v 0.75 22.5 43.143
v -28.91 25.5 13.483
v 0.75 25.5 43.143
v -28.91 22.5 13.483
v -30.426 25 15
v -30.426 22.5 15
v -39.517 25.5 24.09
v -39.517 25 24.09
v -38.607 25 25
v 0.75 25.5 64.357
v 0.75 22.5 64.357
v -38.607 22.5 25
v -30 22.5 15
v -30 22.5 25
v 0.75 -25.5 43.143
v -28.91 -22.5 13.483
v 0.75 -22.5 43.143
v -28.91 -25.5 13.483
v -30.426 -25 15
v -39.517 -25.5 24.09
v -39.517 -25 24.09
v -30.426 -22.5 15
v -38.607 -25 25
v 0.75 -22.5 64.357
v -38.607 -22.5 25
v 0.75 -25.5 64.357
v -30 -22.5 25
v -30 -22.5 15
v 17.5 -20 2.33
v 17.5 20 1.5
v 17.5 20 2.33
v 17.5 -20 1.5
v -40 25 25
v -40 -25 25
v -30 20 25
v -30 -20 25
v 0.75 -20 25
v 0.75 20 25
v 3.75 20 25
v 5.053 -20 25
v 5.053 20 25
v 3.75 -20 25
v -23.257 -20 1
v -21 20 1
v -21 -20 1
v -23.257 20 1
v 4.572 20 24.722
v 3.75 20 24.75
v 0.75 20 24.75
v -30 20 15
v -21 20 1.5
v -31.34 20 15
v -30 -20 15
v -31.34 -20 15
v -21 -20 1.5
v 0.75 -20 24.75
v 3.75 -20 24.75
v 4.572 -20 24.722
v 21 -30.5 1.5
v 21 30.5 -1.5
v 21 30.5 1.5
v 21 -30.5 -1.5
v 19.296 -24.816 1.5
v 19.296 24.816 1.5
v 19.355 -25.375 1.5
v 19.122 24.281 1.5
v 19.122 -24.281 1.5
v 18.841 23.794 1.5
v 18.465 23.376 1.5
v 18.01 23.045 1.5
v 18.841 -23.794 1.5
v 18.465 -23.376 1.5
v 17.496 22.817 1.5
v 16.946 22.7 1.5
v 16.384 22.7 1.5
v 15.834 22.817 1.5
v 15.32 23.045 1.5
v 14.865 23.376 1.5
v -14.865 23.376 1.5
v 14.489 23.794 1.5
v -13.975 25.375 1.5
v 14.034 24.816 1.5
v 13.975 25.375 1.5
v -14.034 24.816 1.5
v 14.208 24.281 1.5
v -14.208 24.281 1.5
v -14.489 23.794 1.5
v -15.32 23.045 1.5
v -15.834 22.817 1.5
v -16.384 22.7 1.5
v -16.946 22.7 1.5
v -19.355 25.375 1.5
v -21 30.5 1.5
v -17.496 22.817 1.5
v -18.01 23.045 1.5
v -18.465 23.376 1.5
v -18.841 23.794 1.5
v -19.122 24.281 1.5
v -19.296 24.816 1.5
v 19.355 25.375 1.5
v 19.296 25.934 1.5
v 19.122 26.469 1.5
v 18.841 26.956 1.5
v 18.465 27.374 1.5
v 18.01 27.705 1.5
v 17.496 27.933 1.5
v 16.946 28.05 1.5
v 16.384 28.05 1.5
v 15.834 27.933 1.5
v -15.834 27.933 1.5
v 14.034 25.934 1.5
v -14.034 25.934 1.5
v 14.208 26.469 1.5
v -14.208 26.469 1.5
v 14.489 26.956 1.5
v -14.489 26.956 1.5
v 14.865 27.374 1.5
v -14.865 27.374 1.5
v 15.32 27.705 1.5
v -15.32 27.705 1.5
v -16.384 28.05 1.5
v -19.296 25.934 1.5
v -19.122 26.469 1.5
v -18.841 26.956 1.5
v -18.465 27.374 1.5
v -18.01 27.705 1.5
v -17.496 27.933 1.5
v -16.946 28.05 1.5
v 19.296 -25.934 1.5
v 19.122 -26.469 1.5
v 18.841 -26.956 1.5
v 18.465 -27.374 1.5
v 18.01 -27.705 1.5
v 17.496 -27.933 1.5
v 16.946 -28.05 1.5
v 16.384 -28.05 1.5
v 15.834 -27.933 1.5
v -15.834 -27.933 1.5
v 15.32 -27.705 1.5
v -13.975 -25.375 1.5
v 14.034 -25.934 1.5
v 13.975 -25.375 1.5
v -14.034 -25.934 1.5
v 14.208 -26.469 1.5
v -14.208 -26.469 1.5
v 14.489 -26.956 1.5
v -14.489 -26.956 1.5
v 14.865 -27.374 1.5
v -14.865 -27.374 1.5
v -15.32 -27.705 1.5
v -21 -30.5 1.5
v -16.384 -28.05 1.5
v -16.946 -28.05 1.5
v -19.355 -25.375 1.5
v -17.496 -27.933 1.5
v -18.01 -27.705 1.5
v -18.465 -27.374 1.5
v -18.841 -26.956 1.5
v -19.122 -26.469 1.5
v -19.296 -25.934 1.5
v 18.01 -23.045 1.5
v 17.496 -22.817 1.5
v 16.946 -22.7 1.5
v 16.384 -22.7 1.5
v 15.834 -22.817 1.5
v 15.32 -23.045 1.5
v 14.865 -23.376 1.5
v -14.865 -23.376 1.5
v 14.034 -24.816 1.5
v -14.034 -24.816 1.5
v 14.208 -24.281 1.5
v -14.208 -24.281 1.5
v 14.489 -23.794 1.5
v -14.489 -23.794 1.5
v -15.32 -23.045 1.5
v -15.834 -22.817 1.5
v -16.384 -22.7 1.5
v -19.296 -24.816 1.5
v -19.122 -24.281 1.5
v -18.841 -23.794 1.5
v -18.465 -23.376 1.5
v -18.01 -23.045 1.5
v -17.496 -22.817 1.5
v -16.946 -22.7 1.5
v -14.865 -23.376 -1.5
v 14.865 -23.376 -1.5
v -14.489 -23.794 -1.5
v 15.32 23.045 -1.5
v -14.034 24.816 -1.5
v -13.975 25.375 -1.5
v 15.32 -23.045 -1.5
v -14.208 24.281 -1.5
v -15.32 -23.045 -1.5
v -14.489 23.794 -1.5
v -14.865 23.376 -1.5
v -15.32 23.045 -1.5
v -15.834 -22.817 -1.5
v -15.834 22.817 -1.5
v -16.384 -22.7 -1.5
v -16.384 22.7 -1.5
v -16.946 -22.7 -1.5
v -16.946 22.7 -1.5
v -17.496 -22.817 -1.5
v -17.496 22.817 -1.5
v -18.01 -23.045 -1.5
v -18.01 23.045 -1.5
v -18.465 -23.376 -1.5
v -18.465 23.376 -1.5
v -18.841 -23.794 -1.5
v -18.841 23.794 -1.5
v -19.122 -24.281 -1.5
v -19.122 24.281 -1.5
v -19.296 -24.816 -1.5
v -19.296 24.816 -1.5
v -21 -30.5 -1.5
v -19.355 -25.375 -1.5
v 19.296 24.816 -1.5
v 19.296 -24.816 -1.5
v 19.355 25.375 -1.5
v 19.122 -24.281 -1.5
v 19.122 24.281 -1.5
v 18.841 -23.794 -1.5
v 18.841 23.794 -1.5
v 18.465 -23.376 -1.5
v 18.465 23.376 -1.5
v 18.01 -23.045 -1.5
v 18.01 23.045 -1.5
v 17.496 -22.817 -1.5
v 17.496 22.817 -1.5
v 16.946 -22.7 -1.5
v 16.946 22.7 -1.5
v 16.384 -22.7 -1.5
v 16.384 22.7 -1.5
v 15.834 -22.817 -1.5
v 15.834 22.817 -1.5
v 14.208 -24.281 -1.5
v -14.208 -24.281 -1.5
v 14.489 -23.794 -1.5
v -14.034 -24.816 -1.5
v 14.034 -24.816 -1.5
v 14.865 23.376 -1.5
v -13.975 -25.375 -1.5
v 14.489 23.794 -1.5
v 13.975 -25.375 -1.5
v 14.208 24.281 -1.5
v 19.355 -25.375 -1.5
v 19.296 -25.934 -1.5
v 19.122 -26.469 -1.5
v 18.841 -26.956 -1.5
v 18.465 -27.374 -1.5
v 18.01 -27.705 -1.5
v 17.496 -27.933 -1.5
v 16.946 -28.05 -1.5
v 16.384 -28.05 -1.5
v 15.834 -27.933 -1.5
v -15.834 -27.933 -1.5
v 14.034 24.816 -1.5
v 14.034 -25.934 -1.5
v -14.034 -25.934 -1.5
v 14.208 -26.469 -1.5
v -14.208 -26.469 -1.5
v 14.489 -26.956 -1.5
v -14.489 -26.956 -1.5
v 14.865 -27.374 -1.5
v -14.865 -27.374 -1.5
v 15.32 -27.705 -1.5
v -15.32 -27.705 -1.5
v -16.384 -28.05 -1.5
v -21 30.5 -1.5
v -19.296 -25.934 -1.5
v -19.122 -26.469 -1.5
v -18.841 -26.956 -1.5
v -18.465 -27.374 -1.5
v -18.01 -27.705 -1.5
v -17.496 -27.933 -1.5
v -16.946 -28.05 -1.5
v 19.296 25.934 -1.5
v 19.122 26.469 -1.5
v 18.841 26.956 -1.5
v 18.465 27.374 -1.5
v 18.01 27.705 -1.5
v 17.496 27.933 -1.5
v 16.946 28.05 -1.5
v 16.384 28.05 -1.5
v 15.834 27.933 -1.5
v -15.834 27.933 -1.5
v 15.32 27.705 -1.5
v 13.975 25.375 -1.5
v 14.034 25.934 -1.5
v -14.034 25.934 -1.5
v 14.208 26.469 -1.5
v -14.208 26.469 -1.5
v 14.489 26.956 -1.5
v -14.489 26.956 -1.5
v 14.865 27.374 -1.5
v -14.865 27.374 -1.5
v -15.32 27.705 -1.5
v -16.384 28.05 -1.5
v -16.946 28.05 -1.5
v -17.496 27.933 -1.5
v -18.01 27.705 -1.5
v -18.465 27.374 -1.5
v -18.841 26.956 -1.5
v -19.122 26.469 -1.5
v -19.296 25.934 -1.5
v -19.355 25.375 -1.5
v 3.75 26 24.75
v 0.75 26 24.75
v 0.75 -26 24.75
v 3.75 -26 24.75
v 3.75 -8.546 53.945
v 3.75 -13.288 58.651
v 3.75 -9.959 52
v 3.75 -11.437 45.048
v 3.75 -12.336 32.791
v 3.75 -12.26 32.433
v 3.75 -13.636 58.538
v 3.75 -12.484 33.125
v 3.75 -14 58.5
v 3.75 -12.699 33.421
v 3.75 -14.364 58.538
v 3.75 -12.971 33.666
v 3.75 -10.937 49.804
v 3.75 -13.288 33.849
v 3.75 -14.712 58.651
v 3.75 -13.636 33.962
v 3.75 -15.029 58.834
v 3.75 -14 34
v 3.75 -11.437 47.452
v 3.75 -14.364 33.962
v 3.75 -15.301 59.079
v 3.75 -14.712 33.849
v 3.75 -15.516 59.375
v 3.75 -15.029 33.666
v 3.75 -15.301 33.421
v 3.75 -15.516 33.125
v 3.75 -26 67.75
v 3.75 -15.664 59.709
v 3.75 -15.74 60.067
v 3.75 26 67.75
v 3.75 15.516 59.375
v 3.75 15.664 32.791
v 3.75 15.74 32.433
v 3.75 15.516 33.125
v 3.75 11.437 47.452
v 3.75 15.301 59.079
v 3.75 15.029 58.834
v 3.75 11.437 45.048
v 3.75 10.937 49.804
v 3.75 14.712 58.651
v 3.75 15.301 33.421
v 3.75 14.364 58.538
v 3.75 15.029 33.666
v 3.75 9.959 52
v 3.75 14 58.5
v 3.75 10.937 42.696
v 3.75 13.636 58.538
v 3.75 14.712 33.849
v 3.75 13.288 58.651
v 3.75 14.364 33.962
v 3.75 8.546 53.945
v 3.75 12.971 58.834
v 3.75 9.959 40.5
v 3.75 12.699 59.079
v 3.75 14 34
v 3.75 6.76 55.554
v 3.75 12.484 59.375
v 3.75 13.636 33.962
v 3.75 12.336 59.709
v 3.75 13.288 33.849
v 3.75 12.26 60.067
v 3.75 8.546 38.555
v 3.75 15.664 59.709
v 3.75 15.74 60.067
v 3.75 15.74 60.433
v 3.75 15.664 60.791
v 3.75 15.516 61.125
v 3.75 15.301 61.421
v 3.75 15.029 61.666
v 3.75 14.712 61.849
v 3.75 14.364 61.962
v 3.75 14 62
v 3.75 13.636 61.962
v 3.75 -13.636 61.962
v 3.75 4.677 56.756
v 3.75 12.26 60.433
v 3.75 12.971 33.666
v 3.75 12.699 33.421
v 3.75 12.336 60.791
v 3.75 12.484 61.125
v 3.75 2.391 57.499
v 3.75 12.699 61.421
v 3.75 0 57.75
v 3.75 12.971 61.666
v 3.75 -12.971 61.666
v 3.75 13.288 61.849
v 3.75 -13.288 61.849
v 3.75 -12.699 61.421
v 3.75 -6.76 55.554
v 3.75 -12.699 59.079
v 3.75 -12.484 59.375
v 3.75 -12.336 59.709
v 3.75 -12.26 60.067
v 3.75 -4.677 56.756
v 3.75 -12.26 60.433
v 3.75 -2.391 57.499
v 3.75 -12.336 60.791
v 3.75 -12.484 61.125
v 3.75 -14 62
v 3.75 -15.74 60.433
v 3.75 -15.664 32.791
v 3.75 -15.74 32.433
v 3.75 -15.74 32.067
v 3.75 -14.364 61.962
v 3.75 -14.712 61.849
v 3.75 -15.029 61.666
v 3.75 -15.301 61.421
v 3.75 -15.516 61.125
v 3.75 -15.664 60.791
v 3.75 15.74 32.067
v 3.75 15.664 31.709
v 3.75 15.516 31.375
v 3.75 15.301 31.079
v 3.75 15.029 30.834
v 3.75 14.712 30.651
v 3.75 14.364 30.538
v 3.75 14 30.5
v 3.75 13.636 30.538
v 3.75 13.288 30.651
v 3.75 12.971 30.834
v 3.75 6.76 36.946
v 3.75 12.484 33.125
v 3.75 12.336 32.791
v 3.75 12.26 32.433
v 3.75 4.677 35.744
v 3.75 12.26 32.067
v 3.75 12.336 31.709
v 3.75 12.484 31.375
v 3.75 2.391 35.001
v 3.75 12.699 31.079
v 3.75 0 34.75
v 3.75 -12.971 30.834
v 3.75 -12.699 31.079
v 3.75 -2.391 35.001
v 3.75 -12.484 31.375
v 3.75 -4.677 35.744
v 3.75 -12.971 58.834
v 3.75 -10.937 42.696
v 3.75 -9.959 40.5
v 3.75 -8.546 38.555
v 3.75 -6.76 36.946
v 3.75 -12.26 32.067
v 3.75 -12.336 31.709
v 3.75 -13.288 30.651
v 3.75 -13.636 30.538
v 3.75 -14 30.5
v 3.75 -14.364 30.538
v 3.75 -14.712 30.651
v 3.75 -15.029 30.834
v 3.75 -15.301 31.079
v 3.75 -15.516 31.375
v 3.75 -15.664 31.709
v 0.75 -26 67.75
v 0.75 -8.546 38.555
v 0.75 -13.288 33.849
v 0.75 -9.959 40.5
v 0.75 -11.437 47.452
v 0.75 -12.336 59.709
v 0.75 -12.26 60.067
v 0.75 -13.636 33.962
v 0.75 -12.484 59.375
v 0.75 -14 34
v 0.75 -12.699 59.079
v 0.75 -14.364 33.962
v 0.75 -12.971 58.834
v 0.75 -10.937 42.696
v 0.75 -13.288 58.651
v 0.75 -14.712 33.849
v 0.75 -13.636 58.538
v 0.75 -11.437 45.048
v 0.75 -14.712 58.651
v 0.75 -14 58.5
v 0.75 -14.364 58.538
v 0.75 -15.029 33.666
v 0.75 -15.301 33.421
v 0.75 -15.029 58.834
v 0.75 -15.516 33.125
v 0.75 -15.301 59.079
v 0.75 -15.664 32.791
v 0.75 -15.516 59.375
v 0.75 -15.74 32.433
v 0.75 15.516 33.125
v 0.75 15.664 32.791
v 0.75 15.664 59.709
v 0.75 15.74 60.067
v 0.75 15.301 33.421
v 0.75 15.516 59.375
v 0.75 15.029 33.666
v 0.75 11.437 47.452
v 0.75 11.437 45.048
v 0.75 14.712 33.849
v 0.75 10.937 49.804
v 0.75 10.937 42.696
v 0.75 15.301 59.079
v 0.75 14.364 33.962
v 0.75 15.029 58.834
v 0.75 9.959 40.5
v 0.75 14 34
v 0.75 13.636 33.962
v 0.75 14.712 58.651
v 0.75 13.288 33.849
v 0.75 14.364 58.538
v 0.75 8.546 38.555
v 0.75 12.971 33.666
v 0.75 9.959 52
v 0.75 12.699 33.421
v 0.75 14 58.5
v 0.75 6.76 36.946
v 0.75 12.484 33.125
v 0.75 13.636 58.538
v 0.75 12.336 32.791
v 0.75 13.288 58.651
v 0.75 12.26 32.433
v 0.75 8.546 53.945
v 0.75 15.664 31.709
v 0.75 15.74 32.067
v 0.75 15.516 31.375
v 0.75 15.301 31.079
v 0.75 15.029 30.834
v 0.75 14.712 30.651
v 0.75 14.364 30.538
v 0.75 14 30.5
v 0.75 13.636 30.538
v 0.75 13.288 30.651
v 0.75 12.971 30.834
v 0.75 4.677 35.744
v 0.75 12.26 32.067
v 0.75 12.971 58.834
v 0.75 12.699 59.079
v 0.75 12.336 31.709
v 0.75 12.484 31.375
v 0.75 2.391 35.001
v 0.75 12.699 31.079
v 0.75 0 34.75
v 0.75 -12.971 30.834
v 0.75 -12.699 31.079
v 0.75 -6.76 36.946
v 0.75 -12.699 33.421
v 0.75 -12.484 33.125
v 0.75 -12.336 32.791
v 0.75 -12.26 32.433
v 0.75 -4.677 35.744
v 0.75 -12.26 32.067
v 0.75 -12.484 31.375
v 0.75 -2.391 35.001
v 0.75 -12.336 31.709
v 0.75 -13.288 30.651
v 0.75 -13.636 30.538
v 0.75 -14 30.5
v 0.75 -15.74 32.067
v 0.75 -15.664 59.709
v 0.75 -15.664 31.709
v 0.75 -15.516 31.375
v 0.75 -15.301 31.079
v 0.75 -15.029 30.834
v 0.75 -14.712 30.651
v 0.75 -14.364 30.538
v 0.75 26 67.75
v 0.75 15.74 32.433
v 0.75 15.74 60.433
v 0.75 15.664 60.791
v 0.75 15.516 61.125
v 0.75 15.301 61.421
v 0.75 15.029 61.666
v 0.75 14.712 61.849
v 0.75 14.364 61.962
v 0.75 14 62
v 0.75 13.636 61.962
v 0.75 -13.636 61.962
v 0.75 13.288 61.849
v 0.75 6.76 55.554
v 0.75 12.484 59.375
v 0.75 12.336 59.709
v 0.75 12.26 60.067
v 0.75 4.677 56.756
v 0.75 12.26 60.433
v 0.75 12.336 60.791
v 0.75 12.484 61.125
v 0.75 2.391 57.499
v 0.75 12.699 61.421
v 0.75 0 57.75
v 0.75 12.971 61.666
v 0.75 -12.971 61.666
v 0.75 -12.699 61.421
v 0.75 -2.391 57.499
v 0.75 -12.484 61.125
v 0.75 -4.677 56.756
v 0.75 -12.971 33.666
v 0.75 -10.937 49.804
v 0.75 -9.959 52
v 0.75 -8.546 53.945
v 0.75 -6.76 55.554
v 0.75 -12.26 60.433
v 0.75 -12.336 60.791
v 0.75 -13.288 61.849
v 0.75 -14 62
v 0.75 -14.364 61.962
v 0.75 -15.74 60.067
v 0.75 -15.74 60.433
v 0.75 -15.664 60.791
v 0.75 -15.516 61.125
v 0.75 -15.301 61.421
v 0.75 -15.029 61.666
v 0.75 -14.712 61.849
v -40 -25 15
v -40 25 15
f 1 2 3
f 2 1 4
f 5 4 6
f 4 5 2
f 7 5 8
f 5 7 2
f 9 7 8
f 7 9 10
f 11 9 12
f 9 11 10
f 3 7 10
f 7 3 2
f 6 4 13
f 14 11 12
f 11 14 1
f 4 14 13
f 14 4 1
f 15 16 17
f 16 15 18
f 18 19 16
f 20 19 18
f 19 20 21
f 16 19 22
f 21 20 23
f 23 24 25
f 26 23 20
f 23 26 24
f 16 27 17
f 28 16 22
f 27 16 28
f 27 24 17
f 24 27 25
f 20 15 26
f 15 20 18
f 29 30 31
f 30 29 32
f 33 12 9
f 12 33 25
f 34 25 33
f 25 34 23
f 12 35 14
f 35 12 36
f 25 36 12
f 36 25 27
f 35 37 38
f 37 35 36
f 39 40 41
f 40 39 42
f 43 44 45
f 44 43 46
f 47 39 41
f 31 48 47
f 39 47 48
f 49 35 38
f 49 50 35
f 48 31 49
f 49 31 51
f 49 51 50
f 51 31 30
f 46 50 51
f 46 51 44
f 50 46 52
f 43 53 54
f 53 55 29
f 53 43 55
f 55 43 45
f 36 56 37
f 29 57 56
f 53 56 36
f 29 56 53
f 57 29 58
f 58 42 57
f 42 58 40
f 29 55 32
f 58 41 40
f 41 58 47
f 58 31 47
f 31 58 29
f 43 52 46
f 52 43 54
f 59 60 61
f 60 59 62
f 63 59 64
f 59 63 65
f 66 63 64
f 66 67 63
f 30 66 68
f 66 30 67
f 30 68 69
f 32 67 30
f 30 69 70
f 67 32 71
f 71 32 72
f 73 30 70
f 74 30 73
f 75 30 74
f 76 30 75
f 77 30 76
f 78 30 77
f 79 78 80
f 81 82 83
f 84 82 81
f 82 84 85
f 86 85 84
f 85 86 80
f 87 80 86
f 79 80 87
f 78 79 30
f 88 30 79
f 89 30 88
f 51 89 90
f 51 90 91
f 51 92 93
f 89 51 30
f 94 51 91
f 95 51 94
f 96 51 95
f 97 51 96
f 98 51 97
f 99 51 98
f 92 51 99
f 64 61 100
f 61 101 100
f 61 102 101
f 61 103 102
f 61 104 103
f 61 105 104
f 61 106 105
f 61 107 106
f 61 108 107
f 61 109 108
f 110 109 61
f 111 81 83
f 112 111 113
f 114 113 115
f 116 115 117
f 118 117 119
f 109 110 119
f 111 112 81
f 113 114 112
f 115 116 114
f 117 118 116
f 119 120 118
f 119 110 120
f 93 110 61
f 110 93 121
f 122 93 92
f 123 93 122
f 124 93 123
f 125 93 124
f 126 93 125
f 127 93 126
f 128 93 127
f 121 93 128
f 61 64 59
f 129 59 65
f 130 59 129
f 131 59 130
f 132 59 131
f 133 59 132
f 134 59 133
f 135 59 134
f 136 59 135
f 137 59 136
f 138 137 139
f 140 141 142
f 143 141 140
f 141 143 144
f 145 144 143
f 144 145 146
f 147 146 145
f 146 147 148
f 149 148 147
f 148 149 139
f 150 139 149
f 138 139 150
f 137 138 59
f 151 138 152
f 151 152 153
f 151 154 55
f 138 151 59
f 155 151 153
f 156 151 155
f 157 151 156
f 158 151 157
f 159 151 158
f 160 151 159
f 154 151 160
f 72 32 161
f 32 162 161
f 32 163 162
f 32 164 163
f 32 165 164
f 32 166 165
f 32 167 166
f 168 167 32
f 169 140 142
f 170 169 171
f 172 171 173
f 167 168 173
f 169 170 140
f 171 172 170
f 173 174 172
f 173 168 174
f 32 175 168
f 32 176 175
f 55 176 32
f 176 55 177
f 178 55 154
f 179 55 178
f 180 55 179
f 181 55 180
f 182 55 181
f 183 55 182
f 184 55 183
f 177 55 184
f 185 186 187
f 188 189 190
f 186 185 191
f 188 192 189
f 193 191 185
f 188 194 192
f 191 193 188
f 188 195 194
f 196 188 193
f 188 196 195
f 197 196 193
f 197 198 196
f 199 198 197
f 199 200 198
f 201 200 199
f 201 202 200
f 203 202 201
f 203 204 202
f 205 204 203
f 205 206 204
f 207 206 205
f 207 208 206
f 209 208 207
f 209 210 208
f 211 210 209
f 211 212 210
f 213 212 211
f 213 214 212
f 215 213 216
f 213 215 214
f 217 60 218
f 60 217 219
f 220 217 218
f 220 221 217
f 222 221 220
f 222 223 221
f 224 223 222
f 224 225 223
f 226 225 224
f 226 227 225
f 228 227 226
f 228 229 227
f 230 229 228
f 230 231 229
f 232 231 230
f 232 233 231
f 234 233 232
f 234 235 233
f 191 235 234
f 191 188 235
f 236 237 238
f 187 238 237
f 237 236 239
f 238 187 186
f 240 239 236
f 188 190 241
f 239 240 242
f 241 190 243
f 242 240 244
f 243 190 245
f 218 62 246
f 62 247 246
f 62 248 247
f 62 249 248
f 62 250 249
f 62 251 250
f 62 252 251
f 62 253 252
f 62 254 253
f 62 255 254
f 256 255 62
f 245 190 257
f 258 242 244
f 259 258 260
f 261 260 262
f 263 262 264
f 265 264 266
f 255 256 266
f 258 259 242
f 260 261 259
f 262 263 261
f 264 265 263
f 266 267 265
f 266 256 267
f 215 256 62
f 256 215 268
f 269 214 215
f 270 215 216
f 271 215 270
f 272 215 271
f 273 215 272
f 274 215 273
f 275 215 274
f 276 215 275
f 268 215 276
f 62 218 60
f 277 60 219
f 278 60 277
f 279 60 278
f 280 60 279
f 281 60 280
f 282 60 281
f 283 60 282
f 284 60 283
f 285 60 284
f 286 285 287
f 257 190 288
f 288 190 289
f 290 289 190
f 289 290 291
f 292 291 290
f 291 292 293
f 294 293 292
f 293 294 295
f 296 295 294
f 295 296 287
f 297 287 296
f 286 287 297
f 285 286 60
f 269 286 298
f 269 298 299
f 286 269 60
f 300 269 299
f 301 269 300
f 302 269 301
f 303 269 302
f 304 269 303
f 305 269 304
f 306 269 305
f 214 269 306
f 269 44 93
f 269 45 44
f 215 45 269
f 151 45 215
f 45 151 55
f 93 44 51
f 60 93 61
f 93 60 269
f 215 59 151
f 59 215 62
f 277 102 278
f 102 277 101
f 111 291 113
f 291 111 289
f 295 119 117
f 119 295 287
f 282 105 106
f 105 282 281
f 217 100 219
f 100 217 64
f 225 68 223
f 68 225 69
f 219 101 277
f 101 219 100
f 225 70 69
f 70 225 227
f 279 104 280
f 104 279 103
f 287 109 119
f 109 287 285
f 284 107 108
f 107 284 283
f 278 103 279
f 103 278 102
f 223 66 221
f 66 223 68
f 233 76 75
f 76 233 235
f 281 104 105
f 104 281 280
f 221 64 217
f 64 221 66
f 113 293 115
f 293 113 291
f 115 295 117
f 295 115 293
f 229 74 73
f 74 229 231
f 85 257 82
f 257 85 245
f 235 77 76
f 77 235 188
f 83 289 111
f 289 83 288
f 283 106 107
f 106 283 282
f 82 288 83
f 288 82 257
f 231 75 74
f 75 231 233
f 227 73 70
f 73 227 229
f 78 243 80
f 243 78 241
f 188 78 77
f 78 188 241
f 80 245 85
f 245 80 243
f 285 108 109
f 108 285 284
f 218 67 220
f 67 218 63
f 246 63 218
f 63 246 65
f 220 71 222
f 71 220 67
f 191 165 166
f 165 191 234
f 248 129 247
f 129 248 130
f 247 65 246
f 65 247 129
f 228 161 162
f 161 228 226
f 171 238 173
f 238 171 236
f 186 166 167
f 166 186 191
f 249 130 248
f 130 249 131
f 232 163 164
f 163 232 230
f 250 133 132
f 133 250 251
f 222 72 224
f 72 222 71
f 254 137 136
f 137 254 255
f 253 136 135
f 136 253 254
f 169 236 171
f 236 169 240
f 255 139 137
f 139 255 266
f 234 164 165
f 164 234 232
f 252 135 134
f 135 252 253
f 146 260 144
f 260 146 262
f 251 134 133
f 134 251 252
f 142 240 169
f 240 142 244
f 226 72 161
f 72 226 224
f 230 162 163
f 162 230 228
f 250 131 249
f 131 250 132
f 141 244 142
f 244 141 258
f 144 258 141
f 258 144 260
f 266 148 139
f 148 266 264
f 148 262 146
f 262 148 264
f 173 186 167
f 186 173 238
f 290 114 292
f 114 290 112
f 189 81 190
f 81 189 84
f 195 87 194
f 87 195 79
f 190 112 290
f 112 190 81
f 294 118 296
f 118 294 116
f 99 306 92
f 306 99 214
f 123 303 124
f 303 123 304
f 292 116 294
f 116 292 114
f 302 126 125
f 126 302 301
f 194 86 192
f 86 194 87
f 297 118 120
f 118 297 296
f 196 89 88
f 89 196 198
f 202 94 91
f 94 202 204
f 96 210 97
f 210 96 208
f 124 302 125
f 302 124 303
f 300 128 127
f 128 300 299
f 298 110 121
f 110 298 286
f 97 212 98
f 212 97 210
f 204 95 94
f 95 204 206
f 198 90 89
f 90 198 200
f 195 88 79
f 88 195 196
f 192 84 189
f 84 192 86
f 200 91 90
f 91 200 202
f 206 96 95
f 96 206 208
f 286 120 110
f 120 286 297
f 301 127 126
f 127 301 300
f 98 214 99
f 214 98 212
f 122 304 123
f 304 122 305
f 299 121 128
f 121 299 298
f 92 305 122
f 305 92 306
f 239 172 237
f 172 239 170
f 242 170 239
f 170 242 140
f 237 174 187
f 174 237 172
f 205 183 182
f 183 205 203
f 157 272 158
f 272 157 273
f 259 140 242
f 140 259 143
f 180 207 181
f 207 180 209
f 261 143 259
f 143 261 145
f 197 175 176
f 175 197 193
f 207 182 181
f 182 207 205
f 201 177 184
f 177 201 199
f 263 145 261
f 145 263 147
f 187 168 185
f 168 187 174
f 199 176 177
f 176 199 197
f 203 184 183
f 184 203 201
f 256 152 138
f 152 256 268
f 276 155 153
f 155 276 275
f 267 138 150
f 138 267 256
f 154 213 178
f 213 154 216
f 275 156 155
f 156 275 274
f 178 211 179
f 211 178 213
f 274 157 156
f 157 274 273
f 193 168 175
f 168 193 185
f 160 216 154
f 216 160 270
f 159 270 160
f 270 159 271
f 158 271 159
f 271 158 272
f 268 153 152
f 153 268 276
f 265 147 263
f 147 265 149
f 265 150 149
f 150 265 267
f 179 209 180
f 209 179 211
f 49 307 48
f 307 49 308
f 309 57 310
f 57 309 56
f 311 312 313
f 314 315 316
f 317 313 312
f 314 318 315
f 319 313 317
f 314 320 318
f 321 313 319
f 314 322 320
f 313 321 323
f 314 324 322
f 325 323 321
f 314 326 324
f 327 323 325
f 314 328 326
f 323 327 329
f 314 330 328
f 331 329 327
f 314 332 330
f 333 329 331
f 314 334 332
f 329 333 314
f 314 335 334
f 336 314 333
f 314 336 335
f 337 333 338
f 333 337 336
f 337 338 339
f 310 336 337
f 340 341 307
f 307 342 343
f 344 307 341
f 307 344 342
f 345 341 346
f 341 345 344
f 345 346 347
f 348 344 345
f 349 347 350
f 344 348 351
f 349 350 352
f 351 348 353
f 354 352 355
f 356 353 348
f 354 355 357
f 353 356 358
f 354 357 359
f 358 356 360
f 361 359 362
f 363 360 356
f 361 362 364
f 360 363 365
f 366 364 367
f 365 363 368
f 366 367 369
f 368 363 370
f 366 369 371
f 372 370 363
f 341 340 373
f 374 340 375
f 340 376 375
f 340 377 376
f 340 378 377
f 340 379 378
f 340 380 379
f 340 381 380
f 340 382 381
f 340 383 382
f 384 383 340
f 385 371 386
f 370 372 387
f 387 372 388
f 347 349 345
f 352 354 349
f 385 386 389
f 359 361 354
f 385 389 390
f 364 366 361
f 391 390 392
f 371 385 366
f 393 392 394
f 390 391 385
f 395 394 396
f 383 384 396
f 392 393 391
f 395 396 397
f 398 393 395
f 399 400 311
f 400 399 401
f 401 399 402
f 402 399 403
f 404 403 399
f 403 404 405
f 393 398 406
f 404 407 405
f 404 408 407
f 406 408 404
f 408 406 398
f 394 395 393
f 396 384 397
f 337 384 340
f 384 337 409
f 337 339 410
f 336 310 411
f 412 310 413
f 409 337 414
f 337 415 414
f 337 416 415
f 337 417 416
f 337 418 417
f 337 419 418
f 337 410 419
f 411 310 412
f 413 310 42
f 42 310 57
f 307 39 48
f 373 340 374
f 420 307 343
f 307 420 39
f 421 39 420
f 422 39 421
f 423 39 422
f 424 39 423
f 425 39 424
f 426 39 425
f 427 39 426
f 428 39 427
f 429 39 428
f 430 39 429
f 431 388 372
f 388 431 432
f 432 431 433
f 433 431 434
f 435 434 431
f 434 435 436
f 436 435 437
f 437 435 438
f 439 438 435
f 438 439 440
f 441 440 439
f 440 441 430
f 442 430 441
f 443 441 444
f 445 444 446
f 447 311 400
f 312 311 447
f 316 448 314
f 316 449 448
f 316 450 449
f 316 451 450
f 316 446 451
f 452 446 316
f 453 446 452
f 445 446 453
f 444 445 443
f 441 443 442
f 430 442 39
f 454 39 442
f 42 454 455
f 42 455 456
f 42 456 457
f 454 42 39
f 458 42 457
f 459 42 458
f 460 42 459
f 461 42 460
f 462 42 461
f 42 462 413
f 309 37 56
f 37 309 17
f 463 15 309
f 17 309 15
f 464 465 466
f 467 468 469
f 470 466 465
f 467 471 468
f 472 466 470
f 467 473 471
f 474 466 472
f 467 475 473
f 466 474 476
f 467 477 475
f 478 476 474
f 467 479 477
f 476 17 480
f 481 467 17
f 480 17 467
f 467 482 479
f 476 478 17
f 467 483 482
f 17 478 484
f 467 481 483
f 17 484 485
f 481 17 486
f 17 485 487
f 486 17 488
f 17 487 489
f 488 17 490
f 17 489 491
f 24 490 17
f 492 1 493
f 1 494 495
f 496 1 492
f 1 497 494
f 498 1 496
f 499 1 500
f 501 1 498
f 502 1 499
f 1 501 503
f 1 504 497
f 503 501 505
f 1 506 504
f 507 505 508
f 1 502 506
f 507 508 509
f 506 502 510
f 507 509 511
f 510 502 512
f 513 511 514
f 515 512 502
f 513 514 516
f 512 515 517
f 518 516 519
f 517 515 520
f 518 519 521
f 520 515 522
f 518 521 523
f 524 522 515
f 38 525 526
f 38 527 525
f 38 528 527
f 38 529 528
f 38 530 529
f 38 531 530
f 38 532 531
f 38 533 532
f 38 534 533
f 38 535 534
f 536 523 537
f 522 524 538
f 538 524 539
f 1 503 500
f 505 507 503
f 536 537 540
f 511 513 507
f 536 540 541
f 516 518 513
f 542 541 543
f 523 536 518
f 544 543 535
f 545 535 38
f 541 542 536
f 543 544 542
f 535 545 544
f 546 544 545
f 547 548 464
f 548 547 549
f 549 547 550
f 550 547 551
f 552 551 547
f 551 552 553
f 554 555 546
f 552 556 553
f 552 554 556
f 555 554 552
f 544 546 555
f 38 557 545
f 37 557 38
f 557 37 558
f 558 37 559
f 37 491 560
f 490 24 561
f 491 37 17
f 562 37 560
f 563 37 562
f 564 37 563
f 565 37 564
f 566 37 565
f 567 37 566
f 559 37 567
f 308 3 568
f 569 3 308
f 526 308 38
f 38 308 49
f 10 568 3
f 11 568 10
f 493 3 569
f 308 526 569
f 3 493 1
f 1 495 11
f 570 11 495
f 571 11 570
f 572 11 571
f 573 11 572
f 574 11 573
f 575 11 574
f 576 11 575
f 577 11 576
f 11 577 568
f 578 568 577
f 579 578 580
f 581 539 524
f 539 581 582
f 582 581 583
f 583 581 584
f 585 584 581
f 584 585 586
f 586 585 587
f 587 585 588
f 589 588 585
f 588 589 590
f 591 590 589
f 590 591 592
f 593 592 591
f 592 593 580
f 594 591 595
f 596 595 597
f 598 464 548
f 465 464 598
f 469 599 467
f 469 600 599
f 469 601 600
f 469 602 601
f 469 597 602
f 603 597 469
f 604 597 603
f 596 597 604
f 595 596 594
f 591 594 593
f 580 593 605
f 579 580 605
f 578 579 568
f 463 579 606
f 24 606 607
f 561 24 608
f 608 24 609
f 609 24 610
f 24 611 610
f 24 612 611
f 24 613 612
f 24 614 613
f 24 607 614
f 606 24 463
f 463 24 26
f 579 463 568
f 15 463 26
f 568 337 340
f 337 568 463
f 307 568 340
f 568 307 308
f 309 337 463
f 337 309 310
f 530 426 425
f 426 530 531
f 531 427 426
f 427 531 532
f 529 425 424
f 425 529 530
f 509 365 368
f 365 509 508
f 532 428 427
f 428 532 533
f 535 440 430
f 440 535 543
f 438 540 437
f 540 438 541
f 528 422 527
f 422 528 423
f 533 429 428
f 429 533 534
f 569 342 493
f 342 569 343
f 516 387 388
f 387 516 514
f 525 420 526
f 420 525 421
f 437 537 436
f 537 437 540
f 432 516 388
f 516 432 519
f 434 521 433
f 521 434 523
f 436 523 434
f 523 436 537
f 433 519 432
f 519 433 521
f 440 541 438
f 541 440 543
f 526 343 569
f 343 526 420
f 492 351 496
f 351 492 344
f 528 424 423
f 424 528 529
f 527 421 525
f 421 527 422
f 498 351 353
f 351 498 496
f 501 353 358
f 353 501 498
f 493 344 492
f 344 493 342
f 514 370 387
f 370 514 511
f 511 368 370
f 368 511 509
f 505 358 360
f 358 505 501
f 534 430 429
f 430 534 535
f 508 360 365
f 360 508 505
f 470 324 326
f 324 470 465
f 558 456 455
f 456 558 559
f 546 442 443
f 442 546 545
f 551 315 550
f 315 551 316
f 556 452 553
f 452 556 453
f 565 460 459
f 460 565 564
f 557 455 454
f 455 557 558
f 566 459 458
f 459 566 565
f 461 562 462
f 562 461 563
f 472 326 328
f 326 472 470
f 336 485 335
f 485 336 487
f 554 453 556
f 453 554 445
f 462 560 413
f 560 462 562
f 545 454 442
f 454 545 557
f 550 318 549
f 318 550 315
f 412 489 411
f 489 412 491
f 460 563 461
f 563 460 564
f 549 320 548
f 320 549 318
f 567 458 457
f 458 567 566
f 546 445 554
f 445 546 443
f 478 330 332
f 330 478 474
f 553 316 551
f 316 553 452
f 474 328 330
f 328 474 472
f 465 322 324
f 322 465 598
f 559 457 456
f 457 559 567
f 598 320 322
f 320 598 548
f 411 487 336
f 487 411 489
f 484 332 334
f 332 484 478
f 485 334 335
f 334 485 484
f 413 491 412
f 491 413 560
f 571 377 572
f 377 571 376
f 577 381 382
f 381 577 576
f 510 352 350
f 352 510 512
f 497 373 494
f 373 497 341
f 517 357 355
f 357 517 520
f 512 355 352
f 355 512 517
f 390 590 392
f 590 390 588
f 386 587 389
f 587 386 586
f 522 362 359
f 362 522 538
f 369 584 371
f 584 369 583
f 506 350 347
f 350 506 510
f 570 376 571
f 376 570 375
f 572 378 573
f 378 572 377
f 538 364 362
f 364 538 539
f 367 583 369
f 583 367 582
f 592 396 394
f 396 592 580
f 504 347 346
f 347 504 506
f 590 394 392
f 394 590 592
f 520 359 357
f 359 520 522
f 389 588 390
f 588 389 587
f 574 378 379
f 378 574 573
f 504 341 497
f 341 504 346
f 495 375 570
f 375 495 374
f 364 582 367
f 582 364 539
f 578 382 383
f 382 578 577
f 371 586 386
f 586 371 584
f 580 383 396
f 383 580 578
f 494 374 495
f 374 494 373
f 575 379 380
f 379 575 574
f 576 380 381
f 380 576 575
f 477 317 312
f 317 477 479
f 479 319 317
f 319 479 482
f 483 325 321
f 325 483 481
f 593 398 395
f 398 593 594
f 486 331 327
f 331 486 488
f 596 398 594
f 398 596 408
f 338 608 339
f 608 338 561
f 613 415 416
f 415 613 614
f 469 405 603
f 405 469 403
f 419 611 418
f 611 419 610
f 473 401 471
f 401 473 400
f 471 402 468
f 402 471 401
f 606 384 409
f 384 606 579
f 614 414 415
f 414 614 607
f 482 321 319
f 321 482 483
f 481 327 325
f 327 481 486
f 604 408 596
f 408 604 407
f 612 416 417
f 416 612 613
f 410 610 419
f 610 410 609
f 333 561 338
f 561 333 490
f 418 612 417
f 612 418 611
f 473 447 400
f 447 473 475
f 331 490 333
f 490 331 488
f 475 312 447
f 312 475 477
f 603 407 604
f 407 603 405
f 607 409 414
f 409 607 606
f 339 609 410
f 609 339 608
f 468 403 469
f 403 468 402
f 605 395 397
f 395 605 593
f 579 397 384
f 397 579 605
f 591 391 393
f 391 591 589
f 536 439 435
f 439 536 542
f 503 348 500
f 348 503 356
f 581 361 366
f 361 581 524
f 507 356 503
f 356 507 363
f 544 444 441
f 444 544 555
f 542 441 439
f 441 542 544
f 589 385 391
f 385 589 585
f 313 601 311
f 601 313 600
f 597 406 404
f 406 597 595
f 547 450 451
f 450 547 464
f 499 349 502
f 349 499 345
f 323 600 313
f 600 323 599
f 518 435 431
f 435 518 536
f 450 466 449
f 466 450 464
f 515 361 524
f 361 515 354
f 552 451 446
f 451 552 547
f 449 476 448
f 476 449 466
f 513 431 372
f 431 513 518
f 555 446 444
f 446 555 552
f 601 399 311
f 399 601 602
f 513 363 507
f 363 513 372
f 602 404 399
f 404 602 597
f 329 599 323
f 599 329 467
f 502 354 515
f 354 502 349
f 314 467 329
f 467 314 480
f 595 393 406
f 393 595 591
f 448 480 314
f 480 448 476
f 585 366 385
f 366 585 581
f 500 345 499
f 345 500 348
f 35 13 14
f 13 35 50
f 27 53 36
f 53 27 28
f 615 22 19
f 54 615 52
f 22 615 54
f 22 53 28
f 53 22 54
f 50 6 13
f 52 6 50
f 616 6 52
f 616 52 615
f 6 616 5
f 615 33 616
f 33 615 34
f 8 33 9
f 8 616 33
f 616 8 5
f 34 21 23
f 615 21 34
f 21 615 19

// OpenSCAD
distX = 28.33+5;
distY = 45.75+5;
difference()
{
    cube([42,61,3], center=true);

    translate([distX/2,distY/2,-2])
    cylinder(4, 2.69,2.69);

    translate([distX/2,-distY/2,-2])
    cylinder(4, 2.69,2.69);

    translate([-distX/2,distY/2,-2])
    cylinder(4, 2.69,2.69);

    translate([-distX/2,-distY/2,-2])
    cylinder(4, 2.69,2.69);
}

height = 46.25;
back = 18;

// Motor 
translate([-back,0,height])
{
    /*
    cube([39,42.25,42.25], center = true);
    translate([39/2,0,0])
    rotate([0,90,0])
    cylinder(24, 2.25, 2.25);*/
}


// Rotator
/*
translate([39/2+24-7-back,0,height])
rotate([0,90,0])
{
    difference()
    {
        translate([0,0,-7])
        cylinder(14,12.5, 12.5);

        // Slits
        translate([10,0,0])
        cube([10,30, 5.5], center=true);

        translate([-10,0,0])
        cube([10,30, 5.5], center=true);
        
        
        // Shaft
        translate([0,0,-8])
        cylinder(16, 5.25/2,5.25/2);
        $fn=30;
        
        // Holder thing
        sideX1 = 7;
        sideY1 = 5;
        translate([-sideX1,sideY1,-8])
        cylinder(16, 3,3);
        
        translate([sideX1,-sideY1,-8])
        cylinder(16, 3,3);
        
        sideX2 = 4.35;
        sideY2 = 7;
        // Holder thing cube
        translate([-sideX2,sideY2,-1])
        rotate([0,0,45])
        cube([6,5,150],center=true);
        
        translate([sideX2,-sideY2,-1])
        rotate([0,0,45])
        cube([6,5,50],center=true);
        
        
        
        // Holder thing 2
        sideX3 = 3;
        sideY3 = 9;
        translate([-sideX3,sideY3,-8])
        cylinder(16, 3,3);
        
        translate([sideX3,-sideY3,-8])
        cylinder(16, 3,3);
        
        
        // Holder thing 3
        sideX4 = 3;
        sideY4 = 11;
        translate([-sideX4,sideY4,-8])
        cylinder(16, 3,3);
        
        translate([sideX4,-sideY4,-8])
        cylinder(16, 3,3);
    }

    // Key Hole
    translate([-2,2,-7])

    cube([4,1,14]);
}*/

dist=28;

// Faceplate
translate([2.25,0,height])
rotate([0,90,0])
{
    difference()
    {
        // Plate
        cube([43,52,3], center = true);
        
        // Screw Holes
        translate([dist/2,dist/2,-2])
        cylinder(5, 1.75,1.75);
        
        translate([dist/2,-dist/2,-2])
        cylinder(5, 1.75,1.75);
        
        translate([-dist/2,dist/2,-2])
        cylinder(5, 1.75,1.75);
        
        translate([-dist/2,-dist/2,-2])
        cylinder(5, 1.75,1.75);
        
        translate([0,0,-2])
        cylinder(5, 23/2,23/2);
    }
}
    $fn=30;

// Block
difference()
{
    translate([-10,0,13])
    cube([55,40,24], center=true);
    
    translate([20,0,14])
    rotate([0,60,0])
    cube([34,48,16], center=true);
    translate([-40,0,14])
    rotate([0,60,0])
    cube([40,48,16], center=true);
    /*
    translate([-10,0,14])
    rotate([0,5,0])
    cube([15,48,16], center=true);
    
    translate([-10,0,13])
    rotate([5,0,90])
    cube([30,48,16], center=true);*/
}

difference()
{
    translate([-13,0,40])
    rotate([0,45,0])
    {
        translate([0,24,0])
        cube([15,3,60], center=true);

        translate([0,-24,0])
        cube([15,3,60], center=true);
    }

    // Face plate plate
    translate([9,0,55])
    cube([12,70,30], center=true);
}

translate([-35,0,20])
cube([10,50,10], center=true);
